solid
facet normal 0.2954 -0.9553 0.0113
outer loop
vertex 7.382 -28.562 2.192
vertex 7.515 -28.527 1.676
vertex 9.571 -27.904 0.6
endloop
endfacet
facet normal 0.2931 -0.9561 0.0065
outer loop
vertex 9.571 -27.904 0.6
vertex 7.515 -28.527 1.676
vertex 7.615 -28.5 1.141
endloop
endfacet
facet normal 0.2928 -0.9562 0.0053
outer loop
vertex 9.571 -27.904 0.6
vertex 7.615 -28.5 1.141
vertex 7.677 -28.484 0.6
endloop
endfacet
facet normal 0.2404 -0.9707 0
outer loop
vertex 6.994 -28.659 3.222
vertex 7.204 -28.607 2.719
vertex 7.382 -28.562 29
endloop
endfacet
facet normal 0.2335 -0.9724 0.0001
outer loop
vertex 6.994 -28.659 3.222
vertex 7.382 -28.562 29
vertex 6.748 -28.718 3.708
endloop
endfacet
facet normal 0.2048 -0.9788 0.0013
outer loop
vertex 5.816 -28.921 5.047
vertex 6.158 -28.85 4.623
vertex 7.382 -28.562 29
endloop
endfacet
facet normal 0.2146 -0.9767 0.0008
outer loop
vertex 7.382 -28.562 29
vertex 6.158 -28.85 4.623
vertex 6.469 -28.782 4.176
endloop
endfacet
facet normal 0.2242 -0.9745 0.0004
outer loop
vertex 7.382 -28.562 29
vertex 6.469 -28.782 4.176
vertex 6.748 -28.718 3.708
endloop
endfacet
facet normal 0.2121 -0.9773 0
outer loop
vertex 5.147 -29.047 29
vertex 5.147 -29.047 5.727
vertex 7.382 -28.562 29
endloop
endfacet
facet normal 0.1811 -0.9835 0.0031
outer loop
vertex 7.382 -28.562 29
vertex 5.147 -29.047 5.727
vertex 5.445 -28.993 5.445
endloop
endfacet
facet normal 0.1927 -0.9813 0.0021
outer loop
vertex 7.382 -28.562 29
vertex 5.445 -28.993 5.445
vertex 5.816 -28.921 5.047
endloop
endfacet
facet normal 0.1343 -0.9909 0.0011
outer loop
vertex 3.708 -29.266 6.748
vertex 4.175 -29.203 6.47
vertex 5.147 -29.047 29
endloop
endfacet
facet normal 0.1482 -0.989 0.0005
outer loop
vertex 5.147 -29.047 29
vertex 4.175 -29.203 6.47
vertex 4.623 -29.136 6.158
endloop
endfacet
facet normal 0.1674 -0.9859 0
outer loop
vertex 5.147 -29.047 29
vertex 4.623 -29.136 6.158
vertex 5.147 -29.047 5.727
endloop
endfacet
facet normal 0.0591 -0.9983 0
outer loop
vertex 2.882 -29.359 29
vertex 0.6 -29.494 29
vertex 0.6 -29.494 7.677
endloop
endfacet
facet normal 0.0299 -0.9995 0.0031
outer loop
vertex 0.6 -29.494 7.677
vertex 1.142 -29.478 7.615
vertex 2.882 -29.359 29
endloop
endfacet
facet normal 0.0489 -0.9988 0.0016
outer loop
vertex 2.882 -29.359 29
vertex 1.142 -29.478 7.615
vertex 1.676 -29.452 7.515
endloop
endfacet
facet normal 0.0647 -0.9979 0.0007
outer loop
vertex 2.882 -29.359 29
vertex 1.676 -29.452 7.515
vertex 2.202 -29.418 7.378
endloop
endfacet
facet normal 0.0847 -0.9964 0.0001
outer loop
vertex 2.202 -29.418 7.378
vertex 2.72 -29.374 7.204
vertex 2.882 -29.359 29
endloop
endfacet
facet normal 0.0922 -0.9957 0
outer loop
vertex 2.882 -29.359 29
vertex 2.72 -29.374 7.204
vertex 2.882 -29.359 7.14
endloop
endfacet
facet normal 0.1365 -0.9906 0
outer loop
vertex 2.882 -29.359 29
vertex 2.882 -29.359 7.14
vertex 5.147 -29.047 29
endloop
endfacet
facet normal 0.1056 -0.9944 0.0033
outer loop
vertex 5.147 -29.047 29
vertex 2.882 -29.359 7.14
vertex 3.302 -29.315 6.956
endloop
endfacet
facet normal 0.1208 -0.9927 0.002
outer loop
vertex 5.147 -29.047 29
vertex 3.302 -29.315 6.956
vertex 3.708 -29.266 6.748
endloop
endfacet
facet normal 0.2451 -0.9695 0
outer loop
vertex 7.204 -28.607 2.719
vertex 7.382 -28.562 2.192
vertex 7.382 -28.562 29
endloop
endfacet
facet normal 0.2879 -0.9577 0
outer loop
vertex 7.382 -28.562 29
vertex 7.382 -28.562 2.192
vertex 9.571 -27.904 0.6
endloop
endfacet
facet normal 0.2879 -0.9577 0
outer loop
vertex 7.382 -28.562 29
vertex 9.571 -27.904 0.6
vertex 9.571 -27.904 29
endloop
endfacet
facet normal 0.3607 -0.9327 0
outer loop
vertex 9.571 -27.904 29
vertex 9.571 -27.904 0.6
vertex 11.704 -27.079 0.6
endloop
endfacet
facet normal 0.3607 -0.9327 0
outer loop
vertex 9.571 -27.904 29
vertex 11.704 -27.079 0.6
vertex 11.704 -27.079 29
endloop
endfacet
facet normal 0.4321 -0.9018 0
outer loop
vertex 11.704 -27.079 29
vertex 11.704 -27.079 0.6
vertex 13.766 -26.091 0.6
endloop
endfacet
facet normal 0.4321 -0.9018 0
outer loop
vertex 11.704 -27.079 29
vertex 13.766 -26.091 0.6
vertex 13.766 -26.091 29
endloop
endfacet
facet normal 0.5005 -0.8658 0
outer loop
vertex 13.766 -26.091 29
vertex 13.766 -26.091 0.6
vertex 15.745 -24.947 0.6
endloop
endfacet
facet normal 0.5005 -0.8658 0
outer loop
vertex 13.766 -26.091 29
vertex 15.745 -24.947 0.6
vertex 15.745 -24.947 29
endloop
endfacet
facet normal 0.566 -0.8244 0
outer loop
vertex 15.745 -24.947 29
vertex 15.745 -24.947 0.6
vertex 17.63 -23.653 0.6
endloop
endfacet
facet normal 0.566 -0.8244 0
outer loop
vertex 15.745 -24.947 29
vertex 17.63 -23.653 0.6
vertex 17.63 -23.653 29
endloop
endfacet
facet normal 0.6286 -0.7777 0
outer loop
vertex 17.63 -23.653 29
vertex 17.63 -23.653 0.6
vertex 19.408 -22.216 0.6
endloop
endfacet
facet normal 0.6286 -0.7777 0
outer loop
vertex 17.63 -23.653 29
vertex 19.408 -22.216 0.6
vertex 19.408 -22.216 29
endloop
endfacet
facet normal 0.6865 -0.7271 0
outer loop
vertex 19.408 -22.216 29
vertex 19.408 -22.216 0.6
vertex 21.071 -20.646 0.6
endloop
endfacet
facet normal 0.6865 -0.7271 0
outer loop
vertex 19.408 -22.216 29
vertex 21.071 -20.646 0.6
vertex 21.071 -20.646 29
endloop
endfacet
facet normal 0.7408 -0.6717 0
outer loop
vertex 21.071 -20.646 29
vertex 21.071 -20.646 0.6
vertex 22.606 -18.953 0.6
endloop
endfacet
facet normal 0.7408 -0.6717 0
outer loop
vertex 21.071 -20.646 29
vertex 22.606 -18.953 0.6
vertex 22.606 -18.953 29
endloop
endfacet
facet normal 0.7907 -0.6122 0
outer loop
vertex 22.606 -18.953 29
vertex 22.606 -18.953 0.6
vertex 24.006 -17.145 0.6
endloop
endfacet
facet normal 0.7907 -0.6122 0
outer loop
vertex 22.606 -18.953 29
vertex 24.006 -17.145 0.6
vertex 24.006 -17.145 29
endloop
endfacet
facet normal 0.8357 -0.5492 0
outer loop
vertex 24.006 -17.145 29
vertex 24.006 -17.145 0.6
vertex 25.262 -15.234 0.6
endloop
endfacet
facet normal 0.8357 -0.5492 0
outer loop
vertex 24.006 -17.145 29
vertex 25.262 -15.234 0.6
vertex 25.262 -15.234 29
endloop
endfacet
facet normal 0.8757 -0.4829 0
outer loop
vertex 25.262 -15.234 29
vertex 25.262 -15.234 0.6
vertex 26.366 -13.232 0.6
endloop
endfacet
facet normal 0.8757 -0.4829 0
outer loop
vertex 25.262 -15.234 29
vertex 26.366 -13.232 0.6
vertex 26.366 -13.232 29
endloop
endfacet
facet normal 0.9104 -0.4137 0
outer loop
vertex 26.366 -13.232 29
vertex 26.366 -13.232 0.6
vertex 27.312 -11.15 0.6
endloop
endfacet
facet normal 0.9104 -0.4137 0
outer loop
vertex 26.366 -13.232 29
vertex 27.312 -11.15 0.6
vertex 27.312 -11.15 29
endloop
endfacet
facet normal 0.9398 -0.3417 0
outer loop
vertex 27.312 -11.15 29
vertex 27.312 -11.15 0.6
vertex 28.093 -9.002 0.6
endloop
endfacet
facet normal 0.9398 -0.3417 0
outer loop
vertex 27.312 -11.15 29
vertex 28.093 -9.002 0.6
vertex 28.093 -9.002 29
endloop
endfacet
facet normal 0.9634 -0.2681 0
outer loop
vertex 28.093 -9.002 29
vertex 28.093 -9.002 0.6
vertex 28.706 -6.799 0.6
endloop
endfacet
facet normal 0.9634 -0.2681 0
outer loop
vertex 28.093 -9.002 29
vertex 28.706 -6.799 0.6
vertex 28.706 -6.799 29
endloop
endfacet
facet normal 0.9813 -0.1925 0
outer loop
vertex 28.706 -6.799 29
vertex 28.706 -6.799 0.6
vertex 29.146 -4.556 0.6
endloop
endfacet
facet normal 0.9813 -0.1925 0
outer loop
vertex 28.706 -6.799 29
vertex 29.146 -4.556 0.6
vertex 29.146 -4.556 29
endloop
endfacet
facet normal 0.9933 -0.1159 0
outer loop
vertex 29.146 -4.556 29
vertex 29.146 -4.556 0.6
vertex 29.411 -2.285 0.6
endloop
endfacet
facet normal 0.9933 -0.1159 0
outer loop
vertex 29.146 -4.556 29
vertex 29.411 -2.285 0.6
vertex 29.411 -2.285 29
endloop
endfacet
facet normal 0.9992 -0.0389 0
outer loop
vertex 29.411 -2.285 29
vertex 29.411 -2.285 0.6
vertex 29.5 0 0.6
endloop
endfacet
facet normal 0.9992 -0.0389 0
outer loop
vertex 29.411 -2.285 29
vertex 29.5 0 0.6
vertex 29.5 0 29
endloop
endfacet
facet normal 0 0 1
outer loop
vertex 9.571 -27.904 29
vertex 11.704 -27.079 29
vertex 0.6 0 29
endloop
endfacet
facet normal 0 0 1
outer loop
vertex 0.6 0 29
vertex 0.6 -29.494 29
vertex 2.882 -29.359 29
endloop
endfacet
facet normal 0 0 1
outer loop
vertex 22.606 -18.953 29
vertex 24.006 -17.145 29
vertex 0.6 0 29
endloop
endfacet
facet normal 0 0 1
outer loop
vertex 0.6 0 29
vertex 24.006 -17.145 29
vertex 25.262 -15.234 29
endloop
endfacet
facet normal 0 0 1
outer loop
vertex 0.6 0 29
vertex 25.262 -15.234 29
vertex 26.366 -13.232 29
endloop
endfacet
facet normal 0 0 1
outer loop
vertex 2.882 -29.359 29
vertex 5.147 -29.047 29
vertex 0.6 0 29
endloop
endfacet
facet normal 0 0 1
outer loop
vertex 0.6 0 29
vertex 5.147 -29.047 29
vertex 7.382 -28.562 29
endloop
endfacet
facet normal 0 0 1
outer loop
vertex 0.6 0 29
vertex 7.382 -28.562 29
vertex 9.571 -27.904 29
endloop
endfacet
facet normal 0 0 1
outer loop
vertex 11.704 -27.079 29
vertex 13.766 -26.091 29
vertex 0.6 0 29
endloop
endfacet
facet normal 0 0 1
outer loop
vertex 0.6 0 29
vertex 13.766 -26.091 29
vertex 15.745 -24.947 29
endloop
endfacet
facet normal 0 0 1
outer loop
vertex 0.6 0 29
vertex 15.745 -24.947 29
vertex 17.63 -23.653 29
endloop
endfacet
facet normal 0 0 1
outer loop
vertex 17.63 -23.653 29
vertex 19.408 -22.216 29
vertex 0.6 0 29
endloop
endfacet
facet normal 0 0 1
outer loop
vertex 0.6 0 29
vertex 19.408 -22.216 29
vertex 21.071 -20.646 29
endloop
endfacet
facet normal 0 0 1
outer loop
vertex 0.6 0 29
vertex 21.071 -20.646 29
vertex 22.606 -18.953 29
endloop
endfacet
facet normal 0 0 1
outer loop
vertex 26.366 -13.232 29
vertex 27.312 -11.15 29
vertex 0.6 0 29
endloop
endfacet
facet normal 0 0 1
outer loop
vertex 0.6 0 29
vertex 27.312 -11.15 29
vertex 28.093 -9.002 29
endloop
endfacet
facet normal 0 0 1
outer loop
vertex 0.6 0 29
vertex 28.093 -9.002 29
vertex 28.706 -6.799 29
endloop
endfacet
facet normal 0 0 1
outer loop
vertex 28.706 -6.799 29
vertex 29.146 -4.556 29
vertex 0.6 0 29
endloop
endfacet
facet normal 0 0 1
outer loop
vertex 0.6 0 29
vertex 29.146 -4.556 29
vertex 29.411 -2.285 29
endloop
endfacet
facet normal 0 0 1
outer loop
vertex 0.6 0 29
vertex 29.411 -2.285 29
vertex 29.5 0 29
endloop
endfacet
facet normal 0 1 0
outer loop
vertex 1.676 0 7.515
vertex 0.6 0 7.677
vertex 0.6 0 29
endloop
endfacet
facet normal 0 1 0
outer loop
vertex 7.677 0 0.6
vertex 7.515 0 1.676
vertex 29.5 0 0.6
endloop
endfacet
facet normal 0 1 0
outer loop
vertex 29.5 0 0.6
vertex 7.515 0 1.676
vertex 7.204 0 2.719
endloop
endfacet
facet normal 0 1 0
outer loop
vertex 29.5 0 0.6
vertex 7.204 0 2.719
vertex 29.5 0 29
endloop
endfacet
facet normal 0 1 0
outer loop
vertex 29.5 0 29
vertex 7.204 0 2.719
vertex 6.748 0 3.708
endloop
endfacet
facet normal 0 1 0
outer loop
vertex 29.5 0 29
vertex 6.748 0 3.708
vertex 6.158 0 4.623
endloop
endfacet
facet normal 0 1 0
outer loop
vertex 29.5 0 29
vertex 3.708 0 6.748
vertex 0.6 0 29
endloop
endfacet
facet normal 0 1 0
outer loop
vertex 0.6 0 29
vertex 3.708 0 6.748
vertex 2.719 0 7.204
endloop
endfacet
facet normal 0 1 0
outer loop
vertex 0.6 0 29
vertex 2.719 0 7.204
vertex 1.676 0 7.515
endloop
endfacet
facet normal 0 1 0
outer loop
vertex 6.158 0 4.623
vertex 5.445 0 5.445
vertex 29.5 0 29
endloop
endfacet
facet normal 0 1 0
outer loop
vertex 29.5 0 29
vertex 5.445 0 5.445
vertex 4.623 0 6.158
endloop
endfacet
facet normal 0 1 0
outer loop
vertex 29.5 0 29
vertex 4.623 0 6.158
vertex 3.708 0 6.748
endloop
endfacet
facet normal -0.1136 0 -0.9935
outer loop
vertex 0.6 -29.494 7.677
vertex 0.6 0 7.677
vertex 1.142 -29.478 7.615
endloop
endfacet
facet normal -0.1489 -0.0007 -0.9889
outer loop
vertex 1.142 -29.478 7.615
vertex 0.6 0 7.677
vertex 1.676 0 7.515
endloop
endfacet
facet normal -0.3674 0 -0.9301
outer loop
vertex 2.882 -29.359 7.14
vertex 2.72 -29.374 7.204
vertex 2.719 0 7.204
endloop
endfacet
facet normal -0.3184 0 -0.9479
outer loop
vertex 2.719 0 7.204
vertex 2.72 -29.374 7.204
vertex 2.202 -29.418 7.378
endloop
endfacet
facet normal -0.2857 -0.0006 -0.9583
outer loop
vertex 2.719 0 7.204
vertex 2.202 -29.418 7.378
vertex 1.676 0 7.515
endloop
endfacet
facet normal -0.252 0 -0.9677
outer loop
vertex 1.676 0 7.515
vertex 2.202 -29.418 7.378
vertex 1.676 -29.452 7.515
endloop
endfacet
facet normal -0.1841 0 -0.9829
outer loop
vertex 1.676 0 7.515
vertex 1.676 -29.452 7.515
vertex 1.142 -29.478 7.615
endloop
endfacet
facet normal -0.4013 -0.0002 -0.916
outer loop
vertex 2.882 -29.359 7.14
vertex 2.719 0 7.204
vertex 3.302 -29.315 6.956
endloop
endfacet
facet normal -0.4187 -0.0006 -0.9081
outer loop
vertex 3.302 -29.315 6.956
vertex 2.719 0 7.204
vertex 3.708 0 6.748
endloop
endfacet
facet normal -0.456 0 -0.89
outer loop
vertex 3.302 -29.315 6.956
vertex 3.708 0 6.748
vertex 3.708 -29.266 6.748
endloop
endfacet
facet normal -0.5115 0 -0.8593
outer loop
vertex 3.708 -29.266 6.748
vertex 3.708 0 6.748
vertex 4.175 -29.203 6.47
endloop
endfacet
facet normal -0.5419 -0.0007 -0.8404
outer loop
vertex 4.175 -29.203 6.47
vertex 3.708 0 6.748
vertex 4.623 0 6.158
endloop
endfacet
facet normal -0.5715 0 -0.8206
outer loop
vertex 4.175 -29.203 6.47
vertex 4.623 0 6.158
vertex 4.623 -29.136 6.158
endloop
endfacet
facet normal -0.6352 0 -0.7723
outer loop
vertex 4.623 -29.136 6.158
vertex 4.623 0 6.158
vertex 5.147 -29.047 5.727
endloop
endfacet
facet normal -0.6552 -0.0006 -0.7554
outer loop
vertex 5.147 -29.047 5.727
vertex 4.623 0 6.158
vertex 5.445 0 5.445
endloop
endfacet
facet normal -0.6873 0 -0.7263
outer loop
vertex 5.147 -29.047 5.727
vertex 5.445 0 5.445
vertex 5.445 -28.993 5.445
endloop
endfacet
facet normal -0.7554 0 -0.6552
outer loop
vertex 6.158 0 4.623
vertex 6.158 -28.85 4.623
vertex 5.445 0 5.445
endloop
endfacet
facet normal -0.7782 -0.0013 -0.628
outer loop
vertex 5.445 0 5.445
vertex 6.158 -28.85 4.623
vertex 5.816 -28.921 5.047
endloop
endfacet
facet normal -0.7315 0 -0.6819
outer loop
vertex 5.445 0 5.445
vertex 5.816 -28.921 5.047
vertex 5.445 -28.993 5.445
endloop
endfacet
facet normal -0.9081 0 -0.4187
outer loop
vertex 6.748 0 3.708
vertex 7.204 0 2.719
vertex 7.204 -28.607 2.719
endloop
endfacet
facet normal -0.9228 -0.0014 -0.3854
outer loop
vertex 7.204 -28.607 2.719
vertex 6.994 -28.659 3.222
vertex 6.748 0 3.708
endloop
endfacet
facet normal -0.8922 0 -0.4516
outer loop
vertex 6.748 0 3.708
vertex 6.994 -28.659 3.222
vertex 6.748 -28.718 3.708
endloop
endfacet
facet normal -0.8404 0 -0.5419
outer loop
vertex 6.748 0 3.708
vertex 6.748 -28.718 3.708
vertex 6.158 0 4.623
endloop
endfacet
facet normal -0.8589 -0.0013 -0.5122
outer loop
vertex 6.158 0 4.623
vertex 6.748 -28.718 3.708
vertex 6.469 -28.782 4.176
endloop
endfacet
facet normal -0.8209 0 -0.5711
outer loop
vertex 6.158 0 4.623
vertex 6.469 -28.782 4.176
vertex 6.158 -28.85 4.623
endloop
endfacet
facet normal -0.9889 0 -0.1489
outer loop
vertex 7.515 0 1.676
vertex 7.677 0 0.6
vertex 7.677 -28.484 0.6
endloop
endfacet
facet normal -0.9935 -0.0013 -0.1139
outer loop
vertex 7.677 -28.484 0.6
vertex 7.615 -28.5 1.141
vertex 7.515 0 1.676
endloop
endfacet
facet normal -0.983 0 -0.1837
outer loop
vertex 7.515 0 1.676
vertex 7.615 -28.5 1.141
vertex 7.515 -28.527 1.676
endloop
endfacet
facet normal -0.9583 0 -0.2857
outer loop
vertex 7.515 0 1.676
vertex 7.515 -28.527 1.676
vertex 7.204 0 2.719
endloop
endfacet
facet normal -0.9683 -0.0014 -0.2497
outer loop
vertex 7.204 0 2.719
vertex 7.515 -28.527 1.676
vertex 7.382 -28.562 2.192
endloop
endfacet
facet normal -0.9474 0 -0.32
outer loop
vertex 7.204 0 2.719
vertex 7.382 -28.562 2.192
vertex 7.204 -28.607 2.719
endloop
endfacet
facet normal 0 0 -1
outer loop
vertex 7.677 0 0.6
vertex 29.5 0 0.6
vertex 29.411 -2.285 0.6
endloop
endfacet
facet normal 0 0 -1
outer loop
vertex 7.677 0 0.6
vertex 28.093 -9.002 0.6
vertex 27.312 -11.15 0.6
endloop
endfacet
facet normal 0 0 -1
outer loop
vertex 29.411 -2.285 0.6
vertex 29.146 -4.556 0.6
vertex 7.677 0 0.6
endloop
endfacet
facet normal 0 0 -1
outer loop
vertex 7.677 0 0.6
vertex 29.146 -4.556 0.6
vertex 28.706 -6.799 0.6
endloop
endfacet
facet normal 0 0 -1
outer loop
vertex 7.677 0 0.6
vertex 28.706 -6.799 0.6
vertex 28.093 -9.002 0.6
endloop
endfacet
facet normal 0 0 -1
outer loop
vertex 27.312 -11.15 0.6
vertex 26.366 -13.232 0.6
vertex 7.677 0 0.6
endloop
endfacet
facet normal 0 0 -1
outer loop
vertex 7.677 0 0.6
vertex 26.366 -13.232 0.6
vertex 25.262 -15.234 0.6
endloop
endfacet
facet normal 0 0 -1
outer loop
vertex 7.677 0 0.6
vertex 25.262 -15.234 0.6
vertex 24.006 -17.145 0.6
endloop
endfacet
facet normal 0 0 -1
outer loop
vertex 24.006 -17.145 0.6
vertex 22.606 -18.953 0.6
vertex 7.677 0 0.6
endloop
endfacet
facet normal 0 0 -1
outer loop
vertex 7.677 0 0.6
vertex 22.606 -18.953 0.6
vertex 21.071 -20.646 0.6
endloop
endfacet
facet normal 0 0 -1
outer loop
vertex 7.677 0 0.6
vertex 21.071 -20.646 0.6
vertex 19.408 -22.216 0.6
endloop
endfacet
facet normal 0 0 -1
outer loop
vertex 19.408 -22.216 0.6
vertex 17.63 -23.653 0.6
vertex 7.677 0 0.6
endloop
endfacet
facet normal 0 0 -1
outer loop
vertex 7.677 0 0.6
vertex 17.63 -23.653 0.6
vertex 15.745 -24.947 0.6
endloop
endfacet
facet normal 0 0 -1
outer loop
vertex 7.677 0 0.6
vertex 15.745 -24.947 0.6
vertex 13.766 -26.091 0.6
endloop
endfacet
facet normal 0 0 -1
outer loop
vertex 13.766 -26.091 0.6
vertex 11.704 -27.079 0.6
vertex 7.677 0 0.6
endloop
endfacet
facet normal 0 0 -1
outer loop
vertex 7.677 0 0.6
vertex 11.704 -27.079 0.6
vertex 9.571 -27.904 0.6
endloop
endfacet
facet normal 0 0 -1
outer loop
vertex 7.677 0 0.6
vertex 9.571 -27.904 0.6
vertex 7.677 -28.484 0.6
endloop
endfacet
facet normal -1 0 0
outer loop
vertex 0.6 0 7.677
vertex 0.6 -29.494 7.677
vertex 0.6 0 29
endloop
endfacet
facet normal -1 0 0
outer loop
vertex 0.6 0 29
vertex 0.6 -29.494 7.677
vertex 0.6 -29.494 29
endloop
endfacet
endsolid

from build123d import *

# Parameters (mm, degrees)
SKETCH1_R           = 29.5
BOSS_EXTRUDE1_DEPTH = 29
CUT_EXTRUDE1_DEPTH  = 51.808463862
SKETCH3_R           = 7.7
CUT_EXTRUDE2_DEPTH  = 51.808463862
SKETCH4_W           = 0.6
SKETCH4_H           = 22.211954595
SKETCH4_W_2         = 23.241543893
SKETCH4_H_2         = 0.6
CUT_EXTRUDE3_DEPTH  = 51.808464035


with BuildPart() as part:
    # Sketch1 → Boss-Extrude1 (new body)
    with BuildSketch(Plane.XY):
        with Locations(Location((0, 0, 0), (0, 0, 180))):
            Circle(SKETCH1_R)
    extrude(amount=BOSS_EXTRUDE1_DEPTH)

    # Sketch2 → Cut-Extrude1 (cut, through all)
    with BuildSketch(Plane.XY.offset(29)):
        with BuildLine():
            Line((0, 0), (29.5, 0))
            ThreePointArc((29.5, 0), (-20.859650045, 20.859650045), (0, -29.5))
            Line((0, -29.5), (0, 0))
        make_face()
    extrude(amount=-CUT_EXTRUDE1_DEPTH, mode=Mode.SUBTRACT)

    # Sketch3 → Cut-Extrude2 (cut, through all)
    with BuildSketch(Plane(origin=(0, 0, 0), x_dir=(1, 0, 0), z_dir=(0, 1, 0))):
        Circle(SKETCH3_R)
    extrude(amount=-CUT_EXTRUDE2_DEPTH, mode=Mode.SUBTRACT)

    # Sketch4 → Cut-Extrude3 (cut, through all)
    with BuildSketch(Plane(origin=(0, 0, 0), x_dir=(1, 0, 0), z_dir=(0, 1, 0))):
        with Locations((0.3, -17.894022703)):
            Rectangle(SKETCH4_W, SKETCH4_H)
        with Locations((17.879228054, -0.3)):
            Rectangle(SKETCH4_W_2, SKETCH4_H_2)
    extrude(amount=-CUT_EXTRUDE3_DEPTH, mode=Mode.SUBTRACT)


solid = part.part
